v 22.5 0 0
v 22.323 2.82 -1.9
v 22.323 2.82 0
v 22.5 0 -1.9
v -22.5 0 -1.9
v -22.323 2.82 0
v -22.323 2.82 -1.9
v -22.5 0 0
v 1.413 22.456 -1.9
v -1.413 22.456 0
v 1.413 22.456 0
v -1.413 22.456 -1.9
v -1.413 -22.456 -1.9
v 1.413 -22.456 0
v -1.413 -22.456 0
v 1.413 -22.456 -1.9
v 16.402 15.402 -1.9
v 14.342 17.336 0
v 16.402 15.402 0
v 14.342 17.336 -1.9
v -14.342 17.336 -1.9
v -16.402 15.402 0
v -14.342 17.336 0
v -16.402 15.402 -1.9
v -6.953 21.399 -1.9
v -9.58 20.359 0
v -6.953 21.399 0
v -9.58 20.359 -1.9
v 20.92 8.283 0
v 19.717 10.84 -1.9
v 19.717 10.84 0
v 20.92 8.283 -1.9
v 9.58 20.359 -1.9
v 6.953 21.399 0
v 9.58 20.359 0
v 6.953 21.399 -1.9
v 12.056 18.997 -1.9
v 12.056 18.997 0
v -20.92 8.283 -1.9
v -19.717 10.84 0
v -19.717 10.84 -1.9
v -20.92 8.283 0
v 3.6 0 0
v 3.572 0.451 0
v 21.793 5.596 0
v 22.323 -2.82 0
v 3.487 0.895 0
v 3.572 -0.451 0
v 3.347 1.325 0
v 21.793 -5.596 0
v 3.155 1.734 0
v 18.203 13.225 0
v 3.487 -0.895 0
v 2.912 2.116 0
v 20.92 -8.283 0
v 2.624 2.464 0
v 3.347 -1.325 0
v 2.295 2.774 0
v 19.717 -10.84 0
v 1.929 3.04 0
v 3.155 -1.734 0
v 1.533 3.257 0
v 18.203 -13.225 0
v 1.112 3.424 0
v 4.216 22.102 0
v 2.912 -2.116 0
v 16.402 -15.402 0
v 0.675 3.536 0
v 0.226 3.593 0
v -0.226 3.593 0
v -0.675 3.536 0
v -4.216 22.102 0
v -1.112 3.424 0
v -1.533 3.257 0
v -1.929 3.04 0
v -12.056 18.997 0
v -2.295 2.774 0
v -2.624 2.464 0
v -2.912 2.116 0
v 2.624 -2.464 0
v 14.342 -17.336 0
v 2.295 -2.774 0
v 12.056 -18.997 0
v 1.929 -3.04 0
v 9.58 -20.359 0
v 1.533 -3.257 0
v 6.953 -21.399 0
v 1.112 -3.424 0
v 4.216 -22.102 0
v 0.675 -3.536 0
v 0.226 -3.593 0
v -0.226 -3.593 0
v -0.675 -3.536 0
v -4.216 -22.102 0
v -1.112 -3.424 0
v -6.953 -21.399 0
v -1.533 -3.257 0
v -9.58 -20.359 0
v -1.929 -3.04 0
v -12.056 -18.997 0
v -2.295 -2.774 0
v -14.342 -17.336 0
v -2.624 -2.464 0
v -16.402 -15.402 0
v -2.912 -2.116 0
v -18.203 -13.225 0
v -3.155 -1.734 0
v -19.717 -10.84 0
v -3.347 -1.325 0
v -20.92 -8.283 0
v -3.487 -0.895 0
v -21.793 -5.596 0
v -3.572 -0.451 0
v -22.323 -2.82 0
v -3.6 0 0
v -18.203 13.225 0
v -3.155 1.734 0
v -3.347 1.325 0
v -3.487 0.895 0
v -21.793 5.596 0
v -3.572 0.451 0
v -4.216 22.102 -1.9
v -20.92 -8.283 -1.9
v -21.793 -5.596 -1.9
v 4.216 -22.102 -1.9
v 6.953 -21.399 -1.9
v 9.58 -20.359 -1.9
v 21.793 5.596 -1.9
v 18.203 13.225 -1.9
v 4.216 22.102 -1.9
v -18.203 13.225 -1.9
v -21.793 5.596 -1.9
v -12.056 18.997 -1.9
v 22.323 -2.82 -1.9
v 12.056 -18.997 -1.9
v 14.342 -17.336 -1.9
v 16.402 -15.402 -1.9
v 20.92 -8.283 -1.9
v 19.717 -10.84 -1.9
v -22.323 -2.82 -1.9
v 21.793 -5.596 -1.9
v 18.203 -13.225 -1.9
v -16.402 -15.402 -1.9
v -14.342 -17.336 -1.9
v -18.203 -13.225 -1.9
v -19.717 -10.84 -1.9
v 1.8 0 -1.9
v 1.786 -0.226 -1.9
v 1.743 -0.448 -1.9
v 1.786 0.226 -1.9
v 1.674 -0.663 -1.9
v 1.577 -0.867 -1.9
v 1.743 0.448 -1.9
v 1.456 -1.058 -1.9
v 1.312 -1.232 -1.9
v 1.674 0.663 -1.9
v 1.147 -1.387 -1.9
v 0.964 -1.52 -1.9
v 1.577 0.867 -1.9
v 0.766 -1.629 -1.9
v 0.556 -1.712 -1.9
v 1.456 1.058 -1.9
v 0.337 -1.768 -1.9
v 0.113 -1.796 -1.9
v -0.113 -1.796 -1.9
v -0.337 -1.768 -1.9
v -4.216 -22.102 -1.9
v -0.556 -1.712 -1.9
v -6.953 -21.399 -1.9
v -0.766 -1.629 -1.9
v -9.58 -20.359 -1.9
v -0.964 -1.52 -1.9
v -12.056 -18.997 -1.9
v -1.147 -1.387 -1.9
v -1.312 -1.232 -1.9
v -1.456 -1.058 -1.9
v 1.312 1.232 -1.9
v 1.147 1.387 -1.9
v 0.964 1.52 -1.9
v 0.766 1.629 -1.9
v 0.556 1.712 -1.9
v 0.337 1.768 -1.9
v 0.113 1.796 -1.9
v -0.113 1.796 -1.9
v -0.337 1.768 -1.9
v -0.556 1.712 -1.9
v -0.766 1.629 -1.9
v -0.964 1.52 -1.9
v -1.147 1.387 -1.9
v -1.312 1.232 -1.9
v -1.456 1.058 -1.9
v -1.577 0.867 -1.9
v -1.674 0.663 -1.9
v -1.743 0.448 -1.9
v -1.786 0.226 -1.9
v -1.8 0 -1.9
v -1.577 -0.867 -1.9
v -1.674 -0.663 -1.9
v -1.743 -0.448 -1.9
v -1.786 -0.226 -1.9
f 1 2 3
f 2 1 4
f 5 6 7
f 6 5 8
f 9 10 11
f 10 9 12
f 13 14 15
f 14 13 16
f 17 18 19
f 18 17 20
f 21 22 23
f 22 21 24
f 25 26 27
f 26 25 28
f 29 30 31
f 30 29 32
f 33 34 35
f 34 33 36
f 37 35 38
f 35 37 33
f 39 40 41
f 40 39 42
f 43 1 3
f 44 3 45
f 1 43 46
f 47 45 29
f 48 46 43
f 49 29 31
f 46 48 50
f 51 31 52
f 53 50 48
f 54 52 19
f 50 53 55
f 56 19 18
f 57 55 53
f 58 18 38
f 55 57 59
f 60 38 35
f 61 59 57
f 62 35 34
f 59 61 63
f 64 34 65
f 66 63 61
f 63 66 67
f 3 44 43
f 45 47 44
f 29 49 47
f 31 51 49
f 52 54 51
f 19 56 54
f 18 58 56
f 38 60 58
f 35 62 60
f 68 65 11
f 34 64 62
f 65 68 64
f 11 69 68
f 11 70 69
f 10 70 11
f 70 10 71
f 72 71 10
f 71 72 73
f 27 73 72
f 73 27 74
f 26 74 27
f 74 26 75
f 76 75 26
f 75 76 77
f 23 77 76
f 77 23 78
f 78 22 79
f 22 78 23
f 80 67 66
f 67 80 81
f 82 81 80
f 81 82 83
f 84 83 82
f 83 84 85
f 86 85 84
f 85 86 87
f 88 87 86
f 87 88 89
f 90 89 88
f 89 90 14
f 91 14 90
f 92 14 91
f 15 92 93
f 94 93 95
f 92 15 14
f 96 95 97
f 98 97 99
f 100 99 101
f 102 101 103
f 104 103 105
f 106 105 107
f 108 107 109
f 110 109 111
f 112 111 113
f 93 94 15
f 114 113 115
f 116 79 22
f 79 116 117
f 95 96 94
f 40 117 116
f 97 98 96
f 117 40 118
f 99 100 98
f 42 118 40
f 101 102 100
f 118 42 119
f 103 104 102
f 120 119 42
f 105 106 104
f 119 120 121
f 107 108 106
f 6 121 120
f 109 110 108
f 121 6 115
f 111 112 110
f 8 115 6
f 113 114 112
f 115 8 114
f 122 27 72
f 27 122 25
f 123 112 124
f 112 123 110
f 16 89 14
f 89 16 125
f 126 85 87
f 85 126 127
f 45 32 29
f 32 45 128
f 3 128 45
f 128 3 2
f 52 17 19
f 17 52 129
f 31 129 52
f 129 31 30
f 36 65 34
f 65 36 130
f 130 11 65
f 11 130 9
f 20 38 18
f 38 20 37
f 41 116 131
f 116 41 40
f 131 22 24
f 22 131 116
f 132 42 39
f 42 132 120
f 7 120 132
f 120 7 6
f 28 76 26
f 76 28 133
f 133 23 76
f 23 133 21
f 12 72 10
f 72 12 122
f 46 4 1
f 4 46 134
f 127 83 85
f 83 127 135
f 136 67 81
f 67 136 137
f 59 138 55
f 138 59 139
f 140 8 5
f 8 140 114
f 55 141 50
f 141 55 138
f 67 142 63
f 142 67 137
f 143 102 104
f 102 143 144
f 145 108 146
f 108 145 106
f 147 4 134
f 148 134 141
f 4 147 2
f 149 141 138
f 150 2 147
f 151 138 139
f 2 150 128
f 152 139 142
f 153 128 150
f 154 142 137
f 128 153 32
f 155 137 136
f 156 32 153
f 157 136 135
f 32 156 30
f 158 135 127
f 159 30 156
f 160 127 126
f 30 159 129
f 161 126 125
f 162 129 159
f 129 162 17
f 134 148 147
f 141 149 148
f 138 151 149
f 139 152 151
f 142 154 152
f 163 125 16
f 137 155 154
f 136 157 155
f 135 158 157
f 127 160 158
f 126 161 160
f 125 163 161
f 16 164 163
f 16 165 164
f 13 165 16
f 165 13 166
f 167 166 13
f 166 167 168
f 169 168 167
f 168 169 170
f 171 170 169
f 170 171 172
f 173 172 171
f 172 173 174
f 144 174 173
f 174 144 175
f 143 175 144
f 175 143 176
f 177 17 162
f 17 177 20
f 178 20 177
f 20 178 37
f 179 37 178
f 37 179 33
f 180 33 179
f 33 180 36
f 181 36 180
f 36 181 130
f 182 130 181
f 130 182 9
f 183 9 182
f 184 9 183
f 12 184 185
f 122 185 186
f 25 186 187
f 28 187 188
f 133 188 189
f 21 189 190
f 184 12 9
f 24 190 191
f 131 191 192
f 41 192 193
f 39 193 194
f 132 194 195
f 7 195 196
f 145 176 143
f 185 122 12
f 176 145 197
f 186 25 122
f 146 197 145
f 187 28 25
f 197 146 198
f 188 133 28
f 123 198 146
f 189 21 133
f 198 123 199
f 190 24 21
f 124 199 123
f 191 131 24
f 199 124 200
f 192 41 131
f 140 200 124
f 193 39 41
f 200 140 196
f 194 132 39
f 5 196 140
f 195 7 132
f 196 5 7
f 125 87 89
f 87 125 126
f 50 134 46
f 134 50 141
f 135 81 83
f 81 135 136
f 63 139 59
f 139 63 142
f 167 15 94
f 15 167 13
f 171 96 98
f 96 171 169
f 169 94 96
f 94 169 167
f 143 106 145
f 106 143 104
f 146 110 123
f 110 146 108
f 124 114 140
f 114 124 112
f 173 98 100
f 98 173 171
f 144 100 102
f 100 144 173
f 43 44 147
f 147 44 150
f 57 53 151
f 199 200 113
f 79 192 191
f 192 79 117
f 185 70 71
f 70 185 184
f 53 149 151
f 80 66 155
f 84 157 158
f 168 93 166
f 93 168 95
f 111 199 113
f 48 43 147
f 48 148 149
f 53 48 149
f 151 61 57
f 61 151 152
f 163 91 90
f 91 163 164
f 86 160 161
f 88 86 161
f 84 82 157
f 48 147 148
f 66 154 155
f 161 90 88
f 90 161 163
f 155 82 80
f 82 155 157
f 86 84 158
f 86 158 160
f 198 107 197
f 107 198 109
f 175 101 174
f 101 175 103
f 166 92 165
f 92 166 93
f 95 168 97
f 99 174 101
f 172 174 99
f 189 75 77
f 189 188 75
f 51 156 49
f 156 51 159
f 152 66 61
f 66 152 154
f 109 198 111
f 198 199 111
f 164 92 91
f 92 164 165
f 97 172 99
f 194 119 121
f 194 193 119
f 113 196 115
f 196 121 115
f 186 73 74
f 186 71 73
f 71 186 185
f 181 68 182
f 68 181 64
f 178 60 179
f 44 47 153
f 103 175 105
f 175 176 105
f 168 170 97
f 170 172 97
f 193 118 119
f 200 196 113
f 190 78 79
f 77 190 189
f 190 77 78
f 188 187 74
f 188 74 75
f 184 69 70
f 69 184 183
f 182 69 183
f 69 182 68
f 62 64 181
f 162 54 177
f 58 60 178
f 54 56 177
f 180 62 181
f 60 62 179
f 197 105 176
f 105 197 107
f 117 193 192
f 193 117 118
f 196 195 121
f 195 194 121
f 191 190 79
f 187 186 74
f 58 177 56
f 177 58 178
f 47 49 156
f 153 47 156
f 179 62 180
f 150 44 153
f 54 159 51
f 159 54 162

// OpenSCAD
$fn = 50;


difference() {
	union() {
		translate(v = [0, 0, -1.9000000000]) {
			cylinder(h = 1.9000000000, r = 22.5000000000);
		}
		translate(v = [0, 0, -1.9000000000]) {
			cylinder(h = 1.9000000000, r = 2.8750000000);
		}
	}
	union() {
		translate(v = [0, 0, 0]) {
			rotate(a = [0, 0, 0]) {
				difference() {
					union() {
						translate(v = [0, 0, -1.9000000000]) {
							cylinder(h = 1.9000000000, r = 1.5000000000);
						}
						translate(v = [0, 0, -1.9000000000]) {
							cylinder(h = 1.9000000000, r1 = 1.8000000000, r2 = 3.6000000000);
						}
						translate(v = [0, 0, -1.9000000000]) {
							cylinder(h = 1.9000000000, r = 1.8000000000);
						}
						translate(v = [0, 0, -1.9000000000]) {
							cylinder(h = 1.9000000000, r = 1.5000000000);
						}
					}
					union();
				}
			}
		}
	}
}
